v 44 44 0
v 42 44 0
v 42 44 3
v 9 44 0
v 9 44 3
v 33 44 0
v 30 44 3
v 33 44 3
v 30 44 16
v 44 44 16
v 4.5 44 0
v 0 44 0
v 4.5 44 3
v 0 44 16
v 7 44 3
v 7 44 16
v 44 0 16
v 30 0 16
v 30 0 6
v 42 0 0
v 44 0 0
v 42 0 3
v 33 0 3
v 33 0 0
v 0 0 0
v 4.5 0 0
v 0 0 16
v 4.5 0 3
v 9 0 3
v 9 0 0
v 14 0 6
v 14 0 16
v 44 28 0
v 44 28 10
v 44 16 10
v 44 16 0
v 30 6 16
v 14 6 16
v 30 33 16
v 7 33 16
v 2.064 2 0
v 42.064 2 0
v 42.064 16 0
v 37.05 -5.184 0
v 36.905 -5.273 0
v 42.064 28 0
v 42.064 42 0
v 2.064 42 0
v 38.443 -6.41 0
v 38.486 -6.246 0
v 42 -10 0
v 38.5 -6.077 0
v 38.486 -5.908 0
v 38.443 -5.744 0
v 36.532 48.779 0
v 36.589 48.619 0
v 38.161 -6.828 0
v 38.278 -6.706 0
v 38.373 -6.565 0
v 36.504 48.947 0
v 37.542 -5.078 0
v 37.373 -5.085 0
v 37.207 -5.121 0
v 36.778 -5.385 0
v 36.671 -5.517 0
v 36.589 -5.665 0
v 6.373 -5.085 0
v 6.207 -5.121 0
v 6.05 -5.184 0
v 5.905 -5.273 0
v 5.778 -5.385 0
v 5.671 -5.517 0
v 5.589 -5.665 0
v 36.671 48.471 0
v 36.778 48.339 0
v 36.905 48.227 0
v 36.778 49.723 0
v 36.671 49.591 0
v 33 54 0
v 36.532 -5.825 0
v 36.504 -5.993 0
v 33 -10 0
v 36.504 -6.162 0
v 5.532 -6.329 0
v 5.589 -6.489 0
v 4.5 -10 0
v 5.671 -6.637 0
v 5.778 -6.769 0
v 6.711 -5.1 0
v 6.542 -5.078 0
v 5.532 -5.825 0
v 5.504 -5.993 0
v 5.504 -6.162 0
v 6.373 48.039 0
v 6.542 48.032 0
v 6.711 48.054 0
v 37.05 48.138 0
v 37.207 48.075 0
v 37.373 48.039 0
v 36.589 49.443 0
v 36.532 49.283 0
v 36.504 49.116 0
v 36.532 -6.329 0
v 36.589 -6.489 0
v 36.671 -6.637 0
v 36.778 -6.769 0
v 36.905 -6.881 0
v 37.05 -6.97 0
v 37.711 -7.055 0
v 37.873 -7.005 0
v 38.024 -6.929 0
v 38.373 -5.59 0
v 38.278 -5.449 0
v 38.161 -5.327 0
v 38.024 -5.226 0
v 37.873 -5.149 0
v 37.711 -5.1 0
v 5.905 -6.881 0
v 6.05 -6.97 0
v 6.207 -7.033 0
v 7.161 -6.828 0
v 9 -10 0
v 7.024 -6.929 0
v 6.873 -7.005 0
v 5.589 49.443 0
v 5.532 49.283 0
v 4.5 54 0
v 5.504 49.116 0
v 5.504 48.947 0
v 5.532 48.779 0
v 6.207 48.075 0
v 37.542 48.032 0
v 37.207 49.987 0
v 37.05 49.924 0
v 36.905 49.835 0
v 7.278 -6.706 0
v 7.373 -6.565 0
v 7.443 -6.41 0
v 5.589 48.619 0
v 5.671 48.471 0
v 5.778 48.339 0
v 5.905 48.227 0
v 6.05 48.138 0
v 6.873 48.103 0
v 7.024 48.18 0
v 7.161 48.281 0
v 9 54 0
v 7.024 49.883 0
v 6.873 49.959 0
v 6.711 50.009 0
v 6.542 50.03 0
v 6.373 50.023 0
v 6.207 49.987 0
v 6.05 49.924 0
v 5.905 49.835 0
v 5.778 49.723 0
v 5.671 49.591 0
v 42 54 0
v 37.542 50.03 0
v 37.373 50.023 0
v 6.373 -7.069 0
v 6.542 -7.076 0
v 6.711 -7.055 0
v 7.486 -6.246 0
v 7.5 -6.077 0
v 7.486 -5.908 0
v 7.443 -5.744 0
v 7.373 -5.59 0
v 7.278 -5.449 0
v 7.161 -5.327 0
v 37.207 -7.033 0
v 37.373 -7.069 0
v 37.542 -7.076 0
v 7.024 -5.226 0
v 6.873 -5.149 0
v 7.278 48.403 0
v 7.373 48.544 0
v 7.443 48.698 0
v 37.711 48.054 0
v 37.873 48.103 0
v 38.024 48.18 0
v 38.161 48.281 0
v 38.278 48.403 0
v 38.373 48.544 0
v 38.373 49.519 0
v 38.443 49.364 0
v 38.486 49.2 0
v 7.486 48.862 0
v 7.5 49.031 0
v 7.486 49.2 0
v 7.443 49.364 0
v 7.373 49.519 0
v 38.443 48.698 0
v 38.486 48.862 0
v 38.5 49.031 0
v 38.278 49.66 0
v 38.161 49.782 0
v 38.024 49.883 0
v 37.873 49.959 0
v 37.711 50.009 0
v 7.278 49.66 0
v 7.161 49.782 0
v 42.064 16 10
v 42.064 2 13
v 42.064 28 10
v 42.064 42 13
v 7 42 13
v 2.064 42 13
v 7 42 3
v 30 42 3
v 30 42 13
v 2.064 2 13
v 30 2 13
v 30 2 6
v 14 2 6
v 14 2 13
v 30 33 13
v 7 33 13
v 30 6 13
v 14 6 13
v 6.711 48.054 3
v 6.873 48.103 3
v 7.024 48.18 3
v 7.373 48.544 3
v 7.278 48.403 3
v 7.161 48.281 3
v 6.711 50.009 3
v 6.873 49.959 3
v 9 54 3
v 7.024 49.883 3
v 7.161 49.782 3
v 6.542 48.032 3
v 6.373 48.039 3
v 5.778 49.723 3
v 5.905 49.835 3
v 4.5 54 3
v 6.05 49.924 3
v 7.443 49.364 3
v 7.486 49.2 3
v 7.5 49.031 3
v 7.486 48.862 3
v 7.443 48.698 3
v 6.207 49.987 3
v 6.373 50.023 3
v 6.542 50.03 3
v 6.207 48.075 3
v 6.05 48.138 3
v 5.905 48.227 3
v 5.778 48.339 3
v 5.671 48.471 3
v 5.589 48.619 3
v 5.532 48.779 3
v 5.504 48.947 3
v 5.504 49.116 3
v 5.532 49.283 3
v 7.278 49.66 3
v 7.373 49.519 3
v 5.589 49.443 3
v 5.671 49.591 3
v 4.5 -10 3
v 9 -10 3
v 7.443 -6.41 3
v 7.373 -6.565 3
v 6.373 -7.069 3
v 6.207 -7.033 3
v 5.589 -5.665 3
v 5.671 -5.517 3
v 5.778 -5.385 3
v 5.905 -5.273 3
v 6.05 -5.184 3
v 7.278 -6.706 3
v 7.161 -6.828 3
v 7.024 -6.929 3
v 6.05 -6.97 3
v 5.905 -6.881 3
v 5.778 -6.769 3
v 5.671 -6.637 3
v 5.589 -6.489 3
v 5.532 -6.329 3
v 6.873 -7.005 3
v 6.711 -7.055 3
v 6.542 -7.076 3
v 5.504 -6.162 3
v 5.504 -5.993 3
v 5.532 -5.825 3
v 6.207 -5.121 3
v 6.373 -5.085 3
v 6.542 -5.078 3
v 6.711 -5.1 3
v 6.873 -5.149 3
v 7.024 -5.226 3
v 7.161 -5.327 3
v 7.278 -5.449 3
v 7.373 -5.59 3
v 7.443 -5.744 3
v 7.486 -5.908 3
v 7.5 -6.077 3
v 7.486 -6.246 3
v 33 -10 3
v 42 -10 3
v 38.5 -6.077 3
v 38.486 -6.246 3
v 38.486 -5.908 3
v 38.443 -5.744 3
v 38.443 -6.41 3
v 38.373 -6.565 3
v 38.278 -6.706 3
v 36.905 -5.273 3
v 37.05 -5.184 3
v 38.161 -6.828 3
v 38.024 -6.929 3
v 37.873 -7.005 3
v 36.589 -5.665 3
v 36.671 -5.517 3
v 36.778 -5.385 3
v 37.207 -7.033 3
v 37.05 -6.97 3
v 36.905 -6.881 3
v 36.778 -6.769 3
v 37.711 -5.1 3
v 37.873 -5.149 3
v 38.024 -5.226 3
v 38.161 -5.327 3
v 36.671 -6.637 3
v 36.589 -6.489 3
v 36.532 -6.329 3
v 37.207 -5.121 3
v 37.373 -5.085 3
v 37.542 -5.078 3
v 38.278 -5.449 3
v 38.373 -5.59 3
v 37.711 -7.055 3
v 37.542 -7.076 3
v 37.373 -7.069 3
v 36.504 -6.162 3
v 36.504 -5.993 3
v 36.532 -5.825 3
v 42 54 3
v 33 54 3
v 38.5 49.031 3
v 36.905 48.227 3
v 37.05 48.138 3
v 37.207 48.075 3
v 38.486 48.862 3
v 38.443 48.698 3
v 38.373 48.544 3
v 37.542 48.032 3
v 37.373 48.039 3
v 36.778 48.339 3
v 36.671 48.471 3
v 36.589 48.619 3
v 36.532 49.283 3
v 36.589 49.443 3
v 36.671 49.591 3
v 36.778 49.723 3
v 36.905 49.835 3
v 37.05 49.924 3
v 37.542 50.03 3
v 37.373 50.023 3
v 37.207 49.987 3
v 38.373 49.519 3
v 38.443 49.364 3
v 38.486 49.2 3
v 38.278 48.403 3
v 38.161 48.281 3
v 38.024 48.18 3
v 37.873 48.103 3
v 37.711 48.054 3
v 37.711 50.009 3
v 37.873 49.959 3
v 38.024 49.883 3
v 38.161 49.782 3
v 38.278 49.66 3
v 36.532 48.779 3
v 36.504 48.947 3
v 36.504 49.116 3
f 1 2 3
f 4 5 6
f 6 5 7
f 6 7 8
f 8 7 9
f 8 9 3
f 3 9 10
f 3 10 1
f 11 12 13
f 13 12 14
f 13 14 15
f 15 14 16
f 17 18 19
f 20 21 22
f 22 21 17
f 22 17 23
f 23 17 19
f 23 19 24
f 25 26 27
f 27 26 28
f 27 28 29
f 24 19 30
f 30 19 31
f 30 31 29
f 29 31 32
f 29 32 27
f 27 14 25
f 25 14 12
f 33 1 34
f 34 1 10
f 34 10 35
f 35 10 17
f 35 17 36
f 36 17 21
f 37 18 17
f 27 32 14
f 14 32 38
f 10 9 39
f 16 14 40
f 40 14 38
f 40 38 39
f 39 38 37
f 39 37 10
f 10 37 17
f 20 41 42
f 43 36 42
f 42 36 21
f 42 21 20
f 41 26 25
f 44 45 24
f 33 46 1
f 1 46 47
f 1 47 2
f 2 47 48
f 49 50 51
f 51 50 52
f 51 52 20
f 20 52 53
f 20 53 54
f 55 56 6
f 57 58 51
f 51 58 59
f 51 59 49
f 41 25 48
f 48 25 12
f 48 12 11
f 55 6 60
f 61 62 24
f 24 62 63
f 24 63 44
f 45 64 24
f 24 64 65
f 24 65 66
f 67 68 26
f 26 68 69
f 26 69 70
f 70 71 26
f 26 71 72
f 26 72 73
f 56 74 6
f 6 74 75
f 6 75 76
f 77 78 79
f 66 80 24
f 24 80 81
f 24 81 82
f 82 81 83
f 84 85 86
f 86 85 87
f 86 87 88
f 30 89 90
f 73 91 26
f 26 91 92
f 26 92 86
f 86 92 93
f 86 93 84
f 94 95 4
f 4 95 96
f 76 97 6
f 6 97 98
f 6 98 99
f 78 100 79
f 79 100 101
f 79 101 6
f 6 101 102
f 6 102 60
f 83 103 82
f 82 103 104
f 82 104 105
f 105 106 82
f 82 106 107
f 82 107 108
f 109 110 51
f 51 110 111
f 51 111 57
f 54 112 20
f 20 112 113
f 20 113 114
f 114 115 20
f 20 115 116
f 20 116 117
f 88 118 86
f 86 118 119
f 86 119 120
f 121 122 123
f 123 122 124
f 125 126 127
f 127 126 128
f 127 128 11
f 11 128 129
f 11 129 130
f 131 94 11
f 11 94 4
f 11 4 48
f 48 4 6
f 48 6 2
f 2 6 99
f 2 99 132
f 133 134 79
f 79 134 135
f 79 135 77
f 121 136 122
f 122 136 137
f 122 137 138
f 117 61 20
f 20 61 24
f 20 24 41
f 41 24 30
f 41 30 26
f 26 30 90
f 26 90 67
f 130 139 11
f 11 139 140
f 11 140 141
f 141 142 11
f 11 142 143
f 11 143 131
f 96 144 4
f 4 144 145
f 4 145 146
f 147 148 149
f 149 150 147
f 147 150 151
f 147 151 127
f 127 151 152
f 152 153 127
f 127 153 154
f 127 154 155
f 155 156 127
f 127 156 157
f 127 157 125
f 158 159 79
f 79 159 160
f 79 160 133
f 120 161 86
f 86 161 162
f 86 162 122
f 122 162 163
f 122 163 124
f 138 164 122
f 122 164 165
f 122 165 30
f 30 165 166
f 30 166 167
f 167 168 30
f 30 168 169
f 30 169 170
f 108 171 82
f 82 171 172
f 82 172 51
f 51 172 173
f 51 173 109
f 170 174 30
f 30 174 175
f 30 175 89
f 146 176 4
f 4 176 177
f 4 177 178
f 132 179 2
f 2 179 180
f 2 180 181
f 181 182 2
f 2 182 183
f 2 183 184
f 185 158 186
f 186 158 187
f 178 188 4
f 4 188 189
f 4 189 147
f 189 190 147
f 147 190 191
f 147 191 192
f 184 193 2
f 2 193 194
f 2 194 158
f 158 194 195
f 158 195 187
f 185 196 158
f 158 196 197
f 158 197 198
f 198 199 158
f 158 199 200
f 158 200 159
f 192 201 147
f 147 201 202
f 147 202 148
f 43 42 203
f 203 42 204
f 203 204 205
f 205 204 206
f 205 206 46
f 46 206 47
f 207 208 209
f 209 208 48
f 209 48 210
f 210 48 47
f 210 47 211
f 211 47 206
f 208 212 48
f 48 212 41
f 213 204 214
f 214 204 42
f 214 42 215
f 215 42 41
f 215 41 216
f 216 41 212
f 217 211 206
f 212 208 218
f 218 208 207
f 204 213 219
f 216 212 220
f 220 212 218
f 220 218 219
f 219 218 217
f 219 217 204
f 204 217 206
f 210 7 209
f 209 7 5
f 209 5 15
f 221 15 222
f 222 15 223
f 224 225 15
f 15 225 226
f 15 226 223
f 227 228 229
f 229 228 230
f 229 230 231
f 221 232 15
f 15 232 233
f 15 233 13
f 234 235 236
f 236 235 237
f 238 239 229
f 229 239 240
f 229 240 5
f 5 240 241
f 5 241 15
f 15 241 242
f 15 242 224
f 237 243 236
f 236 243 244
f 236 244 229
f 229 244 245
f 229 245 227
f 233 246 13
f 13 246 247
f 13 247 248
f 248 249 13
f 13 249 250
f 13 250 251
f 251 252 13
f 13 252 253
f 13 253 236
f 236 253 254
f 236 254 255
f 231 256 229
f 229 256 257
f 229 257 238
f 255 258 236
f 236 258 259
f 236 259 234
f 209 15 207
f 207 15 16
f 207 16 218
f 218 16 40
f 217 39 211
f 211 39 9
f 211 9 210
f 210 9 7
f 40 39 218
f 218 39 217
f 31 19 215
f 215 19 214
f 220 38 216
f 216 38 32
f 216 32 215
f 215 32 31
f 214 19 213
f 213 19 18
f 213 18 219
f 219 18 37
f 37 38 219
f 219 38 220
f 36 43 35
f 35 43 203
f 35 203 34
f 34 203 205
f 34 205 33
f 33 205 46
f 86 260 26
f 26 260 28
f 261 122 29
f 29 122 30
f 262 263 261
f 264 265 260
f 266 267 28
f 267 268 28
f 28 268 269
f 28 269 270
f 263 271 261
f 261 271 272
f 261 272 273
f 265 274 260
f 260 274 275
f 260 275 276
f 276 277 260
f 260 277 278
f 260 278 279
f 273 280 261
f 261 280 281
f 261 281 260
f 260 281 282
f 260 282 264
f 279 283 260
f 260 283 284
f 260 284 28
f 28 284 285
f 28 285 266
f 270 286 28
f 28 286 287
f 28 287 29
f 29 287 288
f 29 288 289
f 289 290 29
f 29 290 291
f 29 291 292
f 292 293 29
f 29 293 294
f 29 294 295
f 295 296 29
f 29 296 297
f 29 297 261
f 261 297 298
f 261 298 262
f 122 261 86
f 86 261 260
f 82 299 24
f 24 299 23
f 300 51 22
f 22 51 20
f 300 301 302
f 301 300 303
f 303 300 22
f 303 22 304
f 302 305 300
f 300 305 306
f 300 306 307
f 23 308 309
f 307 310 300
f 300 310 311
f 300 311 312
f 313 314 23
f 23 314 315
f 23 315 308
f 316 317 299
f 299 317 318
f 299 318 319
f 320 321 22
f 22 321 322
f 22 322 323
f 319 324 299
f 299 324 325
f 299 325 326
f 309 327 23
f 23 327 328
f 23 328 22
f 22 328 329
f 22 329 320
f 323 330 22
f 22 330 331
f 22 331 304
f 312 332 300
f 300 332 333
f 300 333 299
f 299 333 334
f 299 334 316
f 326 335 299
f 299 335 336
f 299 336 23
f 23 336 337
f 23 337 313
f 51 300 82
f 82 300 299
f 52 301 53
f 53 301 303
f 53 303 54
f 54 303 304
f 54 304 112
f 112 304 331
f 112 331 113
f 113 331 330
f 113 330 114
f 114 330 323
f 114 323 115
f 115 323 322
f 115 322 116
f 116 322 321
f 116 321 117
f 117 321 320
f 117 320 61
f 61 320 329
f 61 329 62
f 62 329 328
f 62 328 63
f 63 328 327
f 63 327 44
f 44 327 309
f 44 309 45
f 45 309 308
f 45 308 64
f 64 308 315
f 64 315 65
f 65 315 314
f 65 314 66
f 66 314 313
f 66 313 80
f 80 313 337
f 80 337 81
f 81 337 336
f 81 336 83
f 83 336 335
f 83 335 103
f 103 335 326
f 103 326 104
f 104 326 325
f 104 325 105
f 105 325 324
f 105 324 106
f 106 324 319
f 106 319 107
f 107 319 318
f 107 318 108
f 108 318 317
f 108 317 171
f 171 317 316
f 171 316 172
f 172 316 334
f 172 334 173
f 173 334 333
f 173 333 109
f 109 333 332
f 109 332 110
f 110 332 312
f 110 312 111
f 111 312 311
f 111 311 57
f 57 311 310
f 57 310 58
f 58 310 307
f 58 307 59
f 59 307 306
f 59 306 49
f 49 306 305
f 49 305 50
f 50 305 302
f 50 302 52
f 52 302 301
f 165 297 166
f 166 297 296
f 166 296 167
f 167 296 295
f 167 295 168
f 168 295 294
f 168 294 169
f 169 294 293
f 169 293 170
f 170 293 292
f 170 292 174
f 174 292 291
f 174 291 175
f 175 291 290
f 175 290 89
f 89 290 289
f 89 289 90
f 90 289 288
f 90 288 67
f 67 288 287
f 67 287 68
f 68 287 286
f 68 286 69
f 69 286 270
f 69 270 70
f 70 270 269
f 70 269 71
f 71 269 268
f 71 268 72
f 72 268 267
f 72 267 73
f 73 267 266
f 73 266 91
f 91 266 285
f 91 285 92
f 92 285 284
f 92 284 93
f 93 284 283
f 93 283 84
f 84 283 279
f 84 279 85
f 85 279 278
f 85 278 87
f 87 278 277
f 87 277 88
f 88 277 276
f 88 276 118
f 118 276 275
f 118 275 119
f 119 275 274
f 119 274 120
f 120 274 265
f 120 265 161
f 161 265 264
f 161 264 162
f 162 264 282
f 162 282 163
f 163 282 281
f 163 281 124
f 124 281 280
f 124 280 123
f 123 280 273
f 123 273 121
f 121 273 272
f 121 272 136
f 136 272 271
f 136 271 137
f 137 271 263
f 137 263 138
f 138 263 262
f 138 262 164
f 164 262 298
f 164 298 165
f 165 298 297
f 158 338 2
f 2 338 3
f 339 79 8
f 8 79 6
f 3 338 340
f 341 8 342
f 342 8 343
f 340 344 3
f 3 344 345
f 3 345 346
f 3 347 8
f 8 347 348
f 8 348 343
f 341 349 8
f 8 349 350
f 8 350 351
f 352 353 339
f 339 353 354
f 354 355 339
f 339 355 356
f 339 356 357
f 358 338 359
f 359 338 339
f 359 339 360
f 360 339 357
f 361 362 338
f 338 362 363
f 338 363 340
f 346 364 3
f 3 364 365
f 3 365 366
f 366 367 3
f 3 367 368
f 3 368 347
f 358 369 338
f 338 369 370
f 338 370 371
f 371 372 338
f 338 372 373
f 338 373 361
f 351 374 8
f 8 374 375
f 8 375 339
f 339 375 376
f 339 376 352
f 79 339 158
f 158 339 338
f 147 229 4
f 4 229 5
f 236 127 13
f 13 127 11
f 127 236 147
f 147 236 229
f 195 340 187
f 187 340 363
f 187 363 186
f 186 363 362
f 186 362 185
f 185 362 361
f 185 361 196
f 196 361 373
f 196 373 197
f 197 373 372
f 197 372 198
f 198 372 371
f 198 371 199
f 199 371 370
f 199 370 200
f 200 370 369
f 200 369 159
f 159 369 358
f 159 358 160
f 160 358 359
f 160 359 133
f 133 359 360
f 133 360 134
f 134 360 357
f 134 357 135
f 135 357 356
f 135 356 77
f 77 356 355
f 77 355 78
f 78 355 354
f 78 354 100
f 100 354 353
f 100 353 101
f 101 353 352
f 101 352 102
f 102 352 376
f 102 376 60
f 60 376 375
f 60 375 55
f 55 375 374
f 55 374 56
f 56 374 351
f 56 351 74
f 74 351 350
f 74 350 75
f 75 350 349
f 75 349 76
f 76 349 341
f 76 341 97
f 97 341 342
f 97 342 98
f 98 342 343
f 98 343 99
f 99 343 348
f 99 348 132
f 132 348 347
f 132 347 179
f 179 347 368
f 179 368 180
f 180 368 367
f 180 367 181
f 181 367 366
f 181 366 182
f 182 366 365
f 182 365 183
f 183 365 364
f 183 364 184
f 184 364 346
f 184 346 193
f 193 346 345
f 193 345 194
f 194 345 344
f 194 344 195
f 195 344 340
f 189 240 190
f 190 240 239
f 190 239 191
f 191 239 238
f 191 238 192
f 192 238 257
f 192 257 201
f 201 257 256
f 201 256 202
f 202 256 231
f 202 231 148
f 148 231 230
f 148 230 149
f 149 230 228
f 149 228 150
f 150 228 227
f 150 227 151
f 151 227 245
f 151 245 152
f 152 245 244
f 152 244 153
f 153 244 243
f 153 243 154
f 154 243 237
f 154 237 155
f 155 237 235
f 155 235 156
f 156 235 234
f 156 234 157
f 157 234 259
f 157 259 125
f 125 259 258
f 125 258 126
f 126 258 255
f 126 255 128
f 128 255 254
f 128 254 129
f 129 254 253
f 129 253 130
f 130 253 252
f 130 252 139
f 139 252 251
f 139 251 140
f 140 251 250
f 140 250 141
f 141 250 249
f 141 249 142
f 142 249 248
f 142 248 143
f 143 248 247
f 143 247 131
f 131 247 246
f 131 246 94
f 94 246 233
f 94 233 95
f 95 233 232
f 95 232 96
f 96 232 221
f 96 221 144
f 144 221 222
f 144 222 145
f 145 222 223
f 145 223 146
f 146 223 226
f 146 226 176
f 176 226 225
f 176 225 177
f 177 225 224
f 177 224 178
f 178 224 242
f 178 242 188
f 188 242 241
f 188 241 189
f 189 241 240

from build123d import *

# Parameters (mm, degrees)
SKETCH1_W           = 44
SKETCH1_H           = 44
BOSS_EXTRUDE1_DEPTH = 16
SKETCH3_W           = 40
SKETCH3_H           = 40
CUT_EXTRUDE1_DEPTH  = 13
SKETCH5_W           = 23
SKETCH5_H           = 11
CUT_EXTRUDE2_DEPTH  = 13
SKETCH6_W           = 16
SKETCH6_H           = 6
CUT_EXTRUDE3_DEPTH  = 10
SKETCH7_W           = 10
SKETCH7_H           = 12
CUT_EXTRUDE4_DEPTH  = 5
SKETCH8_W           = 4.5
SKETCH8_H           = 3
SKETCH8_W_2         = 9
BOSS_EXTRUDE2_DEPTH = 10
SKETCH9_R           = 1
CUT_EXTRUDE5_DEPTH  = 10
SKETCH10_W          = 9
SKETCH10_H          = 3
SKETCH10_W_2        = 4.5
BOSS_EXTRUDE3_DEPTH = 10
SKETCH11_R          = 1
CUT_EXTRUDE6_DEPTH  = 10


with BuildPart() as part:
    # Sketch1 → Boss-Extrude1 (new body)
    with BuildSketch(Plane.XY):
        with Locations((22, 22)):
            Rectangle(SKETCH1_W, SKETCH1_H)
    extrude(amount=BOSS_EXTRUDE1_DEPTH)

    # Sketch3 → Cut-Extrude1 (cut)
    with BuildSketch(Plane(origin=(0, 0, 0), x_dir=(-1, 0, 0), z_dir=(0, 0, -1))):
        with Locations((-22.063776274, 22)):
            Rectangle(SKETCH3_W, SKETCH3_H)
    extrude(amount=-CUT_EXTRUDE1_DEPTH, mode=Mode.SUBTRACT)

    # Sketch5 → Cut-Extrude2 (cut)
    with BuildSketch(Plane.XY.offset(16)):
        with Locations((18.5, 38.5)):
            Rectangle(SKETCH5_W, SKETCH5_H)
    extrude(amount=-CUT_EXTRUDE2_DEPTH, mode=Mode.SUBTRACT)

    # Sketch6 → Cut-Extrude3 (cut)
    with BuildSketch(Plane.XY.offset(16)):
        with Locations((22, 3)):
            Rectangle(SKETCH6_W, SKETCH6_H)
    extrude(amount=-CUT_EXTRUDE3_DEPTH, mode=Mode.SUBTRACT)

    # Sketch7 → Cut-Extrude4 (cut)
    with BuildSketch(Plane(origin=(44, 0, 0), x_dir=(0, 0, -1), z_dir=(1, 0, 0))):
        with Locations((-5, 22)):
            Rectangle(SKETCH7_W, SKETCH7_H)
    extrude(amount=-CUT_EXTRUDE4_DEPTH, mode=Mode.SUBTRACT)

    # Sketch8 → Boss-Extrude2 (add)
    with BuildSketch(Plane(origin=(0, 0, 0), x_dir=(-1, 0, 0), z_dir=(0, -1, 0))):
        with Locations((-6.75, -1.5)):
            Rectangle(SKETCH8_W, SKETCH8_H)
        with Locations((-37.5, -1.5)):
            Rectangle(SKETCH8_W_2, SKETCH8_H)
    extrude(amount=BOSS_EXTRUDE2_DEPTH)

    # Sketch9 → Cut-Extrude5 (cut)
    with BuildSketch(Plane.XY.offset(3)):
        with Locations((6.5, -6.077320914)):
            Circle(SKETCH9_R)
        with Locations((37.5, -6.077320914)):
            Circle(SKETCH9_R)
    extrude(amount=-CUT_EXTRUDE5_DEPTH, mode=Mode.SUBTRACT)

    # Sketch10 → Boss-Extrude3 (add)
    with BuildSketch(Plane(origin=(0, 44, 0), x_dir=(1, 0, 0), z_dir=(0, 1, 0))):
        with Locations((37.5, -1.5)):
            Rectangle(SKETCH10_W, SKETCH10_H)
        with Locations((6.75, -1.5)):
            Rectangle(SKETCH10_W_2, SKETCH10_H)
    extrude(amount=BOSS_EXTRUDE3_DEPTH)

    # Sketch11 → Cut-Extrude6 (cut)
    with BuildSketch(Plane.XY.offset(3)):
        with Locations((37.5, 49.031327524)):
            Circle(SKETCH11_R)
        with Locations((6.5, 49.031327524)):
            Circle(SKETCH11_R)
    extrude(amount=-CUT_EXTRUDE6_DEPTH, mode=Mode.SUBTRACT)


solid = part.part
